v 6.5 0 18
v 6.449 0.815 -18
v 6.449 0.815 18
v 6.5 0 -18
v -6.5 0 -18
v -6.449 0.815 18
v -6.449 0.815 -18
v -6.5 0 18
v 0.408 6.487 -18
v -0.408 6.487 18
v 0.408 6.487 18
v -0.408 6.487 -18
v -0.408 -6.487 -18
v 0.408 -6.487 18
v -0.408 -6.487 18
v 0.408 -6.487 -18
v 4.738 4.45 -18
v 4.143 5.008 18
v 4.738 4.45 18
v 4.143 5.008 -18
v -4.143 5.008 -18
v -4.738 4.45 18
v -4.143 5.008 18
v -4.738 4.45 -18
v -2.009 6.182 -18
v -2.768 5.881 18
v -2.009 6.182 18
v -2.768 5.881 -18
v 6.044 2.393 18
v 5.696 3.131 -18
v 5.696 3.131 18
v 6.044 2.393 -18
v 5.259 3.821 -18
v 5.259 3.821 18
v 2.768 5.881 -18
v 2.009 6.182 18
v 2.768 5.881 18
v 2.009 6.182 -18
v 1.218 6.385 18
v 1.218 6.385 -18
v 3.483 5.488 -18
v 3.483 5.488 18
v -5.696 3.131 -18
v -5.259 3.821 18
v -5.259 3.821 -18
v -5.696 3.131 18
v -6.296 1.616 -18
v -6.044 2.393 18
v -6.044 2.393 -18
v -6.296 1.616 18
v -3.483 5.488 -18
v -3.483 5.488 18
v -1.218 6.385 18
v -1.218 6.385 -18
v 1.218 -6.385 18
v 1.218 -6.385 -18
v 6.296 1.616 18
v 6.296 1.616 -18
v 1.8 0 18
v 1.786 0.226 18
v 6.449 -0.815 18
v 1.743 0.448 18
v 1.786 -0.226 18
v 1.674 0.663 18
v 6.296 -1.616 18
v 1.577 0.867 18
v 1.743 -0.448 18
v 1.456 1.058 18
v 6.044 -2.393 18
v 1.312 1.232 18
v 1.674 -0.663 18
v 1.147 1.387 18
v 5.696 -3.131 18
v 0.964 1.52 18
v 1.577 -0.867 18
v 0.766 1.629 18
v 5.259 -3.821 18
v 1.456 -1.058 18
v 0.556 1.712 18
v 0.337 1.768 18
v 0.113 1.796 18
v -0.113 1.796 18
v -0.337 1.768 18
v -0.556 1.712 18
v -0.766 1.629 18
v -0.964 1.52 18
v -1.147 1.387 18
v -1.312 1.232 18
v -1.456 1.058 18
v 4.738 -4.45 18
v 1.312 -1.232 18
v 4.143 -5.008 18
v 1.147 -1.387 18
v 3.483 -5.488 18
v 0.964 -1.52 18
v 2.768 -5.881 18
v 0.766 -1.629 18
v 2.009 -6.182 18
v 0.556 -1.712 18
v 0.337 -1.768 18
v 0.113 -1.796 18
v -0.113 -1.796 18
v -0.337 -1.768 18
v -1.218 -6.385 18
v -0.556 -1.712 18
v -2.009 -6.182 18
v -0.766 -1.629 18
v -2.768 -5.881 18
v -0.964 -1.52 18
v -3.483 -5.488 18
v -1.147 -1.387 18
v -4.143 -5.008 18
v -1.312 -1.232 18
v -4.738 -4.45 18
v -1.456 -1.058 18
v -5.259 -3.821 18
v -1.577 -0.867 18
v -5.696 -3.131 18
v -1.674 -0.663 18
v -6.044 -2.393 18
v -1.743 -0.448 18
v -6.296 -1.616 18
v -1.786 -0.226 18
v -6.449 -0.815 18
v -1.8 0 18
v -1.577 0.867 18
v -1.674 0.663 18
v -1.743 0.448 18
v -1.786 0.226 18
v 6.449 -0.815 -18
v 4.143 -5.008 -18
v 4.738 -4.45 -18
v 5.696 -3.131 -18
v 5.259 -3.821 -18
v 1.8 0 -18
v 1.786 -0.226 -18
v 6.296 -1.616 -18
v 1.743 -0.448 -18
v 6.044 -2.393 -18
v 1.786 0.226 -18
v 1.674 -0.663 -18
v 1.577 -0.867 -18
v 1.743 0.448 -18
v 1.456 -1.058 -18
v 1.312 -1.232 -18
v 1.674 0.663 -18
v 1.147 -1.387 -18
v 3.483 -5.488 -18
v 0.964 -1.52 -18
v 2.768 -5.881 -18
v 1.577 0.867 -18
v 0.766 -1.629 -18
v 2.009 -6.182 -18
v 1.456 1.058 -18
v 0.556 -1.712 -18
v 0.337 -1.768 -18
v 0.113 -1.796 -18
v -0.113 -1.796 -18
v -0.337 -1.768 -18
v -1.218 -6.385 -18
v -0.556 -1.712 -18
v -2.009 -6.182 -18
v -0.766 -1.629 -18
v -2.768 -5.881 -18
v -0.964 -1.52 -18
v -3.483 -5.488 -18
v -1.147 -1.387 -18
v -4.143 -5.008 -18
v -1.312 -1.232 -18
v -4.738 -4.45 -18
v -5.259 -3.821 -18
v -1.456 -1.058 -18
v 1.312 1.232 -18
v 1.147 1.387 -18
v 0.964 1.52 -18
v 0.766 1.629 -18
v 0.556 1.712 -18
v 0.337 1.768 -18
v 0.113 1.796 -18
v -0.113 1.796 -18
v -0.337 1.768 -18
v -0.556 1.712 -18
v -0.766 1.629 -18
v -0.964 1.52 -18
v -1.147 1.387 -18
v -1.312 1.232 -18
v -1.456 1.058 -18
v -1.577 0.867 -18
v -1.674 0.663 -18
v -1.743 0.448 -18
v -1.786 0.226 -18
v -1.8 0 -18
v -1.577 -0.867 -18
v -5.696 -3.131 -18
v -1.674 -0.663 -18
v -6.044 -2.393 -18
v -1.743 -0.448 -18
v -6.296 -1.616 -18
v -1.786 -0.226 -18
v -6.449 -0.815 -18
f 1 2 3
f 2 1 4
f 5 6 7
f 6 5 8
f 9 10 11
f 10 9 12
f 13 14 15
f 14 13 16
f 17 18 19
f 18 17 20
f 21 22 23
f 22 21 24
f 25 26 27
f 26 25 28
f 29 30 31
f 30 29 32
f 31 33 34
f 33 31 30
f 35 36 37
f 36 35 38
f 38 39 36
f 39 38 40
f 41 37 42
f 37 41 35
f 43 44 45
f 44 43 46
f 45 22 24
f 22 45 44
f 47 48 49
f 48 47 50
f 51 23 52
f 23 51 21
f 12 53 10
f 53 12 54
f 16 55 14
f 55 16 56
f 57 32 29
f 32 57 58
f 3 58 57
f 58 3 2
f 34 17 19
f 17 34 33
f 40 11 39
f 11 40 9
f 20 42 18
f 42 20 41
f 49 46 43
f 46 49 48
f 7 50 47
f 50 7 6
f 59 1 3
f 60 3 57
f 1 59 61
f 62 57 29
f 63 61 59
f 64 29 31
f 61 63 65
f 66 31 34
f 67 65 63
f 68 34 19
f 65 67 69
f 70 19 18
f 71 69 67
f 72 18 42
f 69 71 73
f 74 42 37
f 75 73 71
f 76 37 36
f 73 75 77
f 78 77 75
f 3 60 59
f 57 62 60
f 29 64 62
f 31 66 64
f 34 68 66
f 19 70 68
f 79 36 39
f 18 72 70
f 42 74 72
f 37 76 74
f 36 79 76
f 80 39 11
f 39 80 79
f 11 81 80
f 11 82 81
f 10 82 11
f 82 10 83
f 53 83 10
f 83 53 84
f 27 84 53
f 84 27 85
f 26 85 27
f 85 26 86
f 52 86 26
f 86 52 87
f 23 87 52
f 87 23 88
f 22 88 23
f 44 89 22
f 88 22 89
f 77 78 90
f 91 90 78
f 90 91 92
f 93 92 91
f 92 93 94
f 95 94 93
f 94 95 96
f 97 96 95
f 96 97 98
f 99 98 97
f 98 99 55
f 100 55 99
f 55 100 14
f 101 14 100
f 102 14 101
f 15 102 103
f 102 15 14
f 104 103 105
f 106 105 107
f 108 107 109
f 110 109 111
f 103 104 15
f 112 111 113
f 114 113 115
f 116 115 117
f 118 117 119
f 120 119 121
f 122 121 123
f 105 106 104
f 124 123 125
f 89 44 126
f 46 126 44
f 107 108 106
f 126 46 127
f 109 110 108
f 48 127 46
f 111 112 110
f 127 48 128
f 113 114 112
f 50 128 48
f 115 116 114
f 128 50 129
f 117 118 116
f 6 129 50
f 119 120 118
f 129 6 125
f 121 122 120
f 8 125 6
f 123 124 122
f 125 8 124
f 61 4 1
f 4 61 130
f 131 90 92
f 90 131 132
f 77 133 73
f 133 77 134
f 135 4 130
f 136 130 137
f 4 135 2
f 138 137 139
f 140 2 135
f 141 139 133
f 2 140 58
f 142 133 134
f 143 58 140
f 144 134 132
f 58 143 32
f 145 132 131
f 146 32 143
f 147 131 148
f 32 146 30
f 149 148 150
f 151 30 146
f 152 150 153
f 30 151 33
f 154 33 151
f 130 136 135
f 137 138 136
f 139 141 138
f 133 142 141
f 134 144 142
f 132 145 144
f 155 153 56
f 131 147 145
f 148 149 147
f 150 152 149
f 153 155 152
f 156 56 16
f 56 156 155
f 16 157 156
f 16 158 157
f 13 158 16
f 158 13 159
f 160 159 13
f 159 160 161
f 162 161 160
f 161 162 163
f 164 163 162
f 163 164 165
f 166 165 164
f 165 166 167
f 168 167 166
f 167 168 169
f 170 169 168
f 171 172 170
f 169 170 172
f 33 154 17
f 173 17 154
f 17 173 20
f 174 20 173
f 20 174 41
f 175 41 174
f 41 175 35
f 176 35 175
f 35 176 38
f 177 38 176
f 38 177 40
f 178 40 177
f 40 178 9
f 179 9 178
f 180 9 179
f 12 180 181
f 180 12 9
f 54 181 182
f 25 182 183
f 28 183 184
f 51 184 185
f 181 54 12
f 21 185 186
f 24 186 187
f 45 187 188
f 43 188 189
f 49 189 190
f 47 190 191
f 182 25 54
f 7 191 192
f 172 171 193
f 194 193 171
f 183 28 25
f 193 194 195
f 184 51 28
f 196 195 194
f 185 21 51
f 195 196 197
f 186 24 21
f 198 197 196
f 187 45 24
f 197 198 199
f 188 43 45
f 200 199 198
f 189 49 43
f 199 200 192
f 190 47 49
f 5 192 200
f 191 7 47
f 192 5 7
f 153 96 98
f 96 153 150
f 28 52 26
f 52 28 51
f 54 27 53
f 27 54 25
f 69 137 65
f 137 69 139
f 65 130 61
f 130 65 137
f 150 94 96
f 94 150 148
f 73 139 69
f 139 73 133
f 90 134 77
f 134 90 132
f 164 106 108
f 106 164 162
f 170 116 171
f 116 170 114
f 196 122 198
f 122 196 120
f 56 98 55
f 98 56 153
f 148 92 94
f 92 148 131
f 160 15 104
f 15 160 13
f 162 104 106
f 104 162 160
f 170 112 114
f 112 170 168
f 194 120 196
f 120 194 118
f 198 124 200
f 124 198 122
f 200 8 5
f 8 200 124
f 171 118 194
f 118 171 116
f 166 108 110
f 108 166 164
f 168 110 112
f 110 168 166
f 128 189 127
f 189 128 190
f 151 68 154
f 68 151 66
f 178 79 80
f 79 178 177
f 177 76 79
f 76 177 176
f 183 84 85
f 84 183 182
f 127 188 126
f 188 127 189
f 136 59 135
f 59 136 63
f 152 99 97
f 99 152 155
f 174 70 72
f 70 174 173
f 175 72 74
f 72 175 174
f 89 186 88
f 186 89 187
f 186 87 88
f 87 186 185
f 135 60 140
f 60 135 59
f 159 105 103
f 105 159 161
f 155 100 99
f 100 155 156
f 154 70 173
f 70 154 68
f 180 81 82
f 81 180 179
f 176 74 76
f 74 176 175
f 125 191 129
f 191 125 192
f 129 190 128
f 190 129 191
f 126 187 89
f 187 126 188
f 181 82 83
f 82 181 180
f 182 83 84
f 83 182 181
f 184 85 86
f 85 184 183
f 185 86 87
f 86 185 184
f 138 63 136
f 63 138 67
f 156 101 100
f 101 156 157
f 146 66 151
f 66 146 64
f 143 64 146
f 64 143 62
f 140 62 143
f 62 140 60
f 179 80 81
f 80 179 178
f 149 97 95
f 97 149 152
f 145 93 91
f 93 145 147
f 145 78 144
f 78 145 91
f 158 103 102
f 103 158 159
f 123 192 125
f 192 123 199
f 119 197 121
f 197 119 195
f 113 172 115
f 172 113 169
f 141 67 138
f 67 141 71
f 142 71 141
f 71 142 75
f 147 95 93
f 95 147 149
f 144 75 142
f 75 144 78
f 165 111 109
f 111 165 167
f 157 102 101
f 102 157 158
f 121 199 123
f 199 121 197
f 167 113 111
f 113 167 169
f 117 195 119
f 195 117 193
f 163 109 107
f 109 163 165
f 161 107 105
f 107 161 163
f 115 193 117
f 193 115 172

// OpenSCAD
$fn = 50;


difference() {
	union() {
		translate(v = [0, 0, -18.0000000000]) {
			cylinder(h = 36, r = 6.5000000000);
		}
	}
	union() {
		translate(v = [0, 0, -100.0000000000]) {
			cylinder(h = 200, r = 1.8000000000);
		}
	}
}
